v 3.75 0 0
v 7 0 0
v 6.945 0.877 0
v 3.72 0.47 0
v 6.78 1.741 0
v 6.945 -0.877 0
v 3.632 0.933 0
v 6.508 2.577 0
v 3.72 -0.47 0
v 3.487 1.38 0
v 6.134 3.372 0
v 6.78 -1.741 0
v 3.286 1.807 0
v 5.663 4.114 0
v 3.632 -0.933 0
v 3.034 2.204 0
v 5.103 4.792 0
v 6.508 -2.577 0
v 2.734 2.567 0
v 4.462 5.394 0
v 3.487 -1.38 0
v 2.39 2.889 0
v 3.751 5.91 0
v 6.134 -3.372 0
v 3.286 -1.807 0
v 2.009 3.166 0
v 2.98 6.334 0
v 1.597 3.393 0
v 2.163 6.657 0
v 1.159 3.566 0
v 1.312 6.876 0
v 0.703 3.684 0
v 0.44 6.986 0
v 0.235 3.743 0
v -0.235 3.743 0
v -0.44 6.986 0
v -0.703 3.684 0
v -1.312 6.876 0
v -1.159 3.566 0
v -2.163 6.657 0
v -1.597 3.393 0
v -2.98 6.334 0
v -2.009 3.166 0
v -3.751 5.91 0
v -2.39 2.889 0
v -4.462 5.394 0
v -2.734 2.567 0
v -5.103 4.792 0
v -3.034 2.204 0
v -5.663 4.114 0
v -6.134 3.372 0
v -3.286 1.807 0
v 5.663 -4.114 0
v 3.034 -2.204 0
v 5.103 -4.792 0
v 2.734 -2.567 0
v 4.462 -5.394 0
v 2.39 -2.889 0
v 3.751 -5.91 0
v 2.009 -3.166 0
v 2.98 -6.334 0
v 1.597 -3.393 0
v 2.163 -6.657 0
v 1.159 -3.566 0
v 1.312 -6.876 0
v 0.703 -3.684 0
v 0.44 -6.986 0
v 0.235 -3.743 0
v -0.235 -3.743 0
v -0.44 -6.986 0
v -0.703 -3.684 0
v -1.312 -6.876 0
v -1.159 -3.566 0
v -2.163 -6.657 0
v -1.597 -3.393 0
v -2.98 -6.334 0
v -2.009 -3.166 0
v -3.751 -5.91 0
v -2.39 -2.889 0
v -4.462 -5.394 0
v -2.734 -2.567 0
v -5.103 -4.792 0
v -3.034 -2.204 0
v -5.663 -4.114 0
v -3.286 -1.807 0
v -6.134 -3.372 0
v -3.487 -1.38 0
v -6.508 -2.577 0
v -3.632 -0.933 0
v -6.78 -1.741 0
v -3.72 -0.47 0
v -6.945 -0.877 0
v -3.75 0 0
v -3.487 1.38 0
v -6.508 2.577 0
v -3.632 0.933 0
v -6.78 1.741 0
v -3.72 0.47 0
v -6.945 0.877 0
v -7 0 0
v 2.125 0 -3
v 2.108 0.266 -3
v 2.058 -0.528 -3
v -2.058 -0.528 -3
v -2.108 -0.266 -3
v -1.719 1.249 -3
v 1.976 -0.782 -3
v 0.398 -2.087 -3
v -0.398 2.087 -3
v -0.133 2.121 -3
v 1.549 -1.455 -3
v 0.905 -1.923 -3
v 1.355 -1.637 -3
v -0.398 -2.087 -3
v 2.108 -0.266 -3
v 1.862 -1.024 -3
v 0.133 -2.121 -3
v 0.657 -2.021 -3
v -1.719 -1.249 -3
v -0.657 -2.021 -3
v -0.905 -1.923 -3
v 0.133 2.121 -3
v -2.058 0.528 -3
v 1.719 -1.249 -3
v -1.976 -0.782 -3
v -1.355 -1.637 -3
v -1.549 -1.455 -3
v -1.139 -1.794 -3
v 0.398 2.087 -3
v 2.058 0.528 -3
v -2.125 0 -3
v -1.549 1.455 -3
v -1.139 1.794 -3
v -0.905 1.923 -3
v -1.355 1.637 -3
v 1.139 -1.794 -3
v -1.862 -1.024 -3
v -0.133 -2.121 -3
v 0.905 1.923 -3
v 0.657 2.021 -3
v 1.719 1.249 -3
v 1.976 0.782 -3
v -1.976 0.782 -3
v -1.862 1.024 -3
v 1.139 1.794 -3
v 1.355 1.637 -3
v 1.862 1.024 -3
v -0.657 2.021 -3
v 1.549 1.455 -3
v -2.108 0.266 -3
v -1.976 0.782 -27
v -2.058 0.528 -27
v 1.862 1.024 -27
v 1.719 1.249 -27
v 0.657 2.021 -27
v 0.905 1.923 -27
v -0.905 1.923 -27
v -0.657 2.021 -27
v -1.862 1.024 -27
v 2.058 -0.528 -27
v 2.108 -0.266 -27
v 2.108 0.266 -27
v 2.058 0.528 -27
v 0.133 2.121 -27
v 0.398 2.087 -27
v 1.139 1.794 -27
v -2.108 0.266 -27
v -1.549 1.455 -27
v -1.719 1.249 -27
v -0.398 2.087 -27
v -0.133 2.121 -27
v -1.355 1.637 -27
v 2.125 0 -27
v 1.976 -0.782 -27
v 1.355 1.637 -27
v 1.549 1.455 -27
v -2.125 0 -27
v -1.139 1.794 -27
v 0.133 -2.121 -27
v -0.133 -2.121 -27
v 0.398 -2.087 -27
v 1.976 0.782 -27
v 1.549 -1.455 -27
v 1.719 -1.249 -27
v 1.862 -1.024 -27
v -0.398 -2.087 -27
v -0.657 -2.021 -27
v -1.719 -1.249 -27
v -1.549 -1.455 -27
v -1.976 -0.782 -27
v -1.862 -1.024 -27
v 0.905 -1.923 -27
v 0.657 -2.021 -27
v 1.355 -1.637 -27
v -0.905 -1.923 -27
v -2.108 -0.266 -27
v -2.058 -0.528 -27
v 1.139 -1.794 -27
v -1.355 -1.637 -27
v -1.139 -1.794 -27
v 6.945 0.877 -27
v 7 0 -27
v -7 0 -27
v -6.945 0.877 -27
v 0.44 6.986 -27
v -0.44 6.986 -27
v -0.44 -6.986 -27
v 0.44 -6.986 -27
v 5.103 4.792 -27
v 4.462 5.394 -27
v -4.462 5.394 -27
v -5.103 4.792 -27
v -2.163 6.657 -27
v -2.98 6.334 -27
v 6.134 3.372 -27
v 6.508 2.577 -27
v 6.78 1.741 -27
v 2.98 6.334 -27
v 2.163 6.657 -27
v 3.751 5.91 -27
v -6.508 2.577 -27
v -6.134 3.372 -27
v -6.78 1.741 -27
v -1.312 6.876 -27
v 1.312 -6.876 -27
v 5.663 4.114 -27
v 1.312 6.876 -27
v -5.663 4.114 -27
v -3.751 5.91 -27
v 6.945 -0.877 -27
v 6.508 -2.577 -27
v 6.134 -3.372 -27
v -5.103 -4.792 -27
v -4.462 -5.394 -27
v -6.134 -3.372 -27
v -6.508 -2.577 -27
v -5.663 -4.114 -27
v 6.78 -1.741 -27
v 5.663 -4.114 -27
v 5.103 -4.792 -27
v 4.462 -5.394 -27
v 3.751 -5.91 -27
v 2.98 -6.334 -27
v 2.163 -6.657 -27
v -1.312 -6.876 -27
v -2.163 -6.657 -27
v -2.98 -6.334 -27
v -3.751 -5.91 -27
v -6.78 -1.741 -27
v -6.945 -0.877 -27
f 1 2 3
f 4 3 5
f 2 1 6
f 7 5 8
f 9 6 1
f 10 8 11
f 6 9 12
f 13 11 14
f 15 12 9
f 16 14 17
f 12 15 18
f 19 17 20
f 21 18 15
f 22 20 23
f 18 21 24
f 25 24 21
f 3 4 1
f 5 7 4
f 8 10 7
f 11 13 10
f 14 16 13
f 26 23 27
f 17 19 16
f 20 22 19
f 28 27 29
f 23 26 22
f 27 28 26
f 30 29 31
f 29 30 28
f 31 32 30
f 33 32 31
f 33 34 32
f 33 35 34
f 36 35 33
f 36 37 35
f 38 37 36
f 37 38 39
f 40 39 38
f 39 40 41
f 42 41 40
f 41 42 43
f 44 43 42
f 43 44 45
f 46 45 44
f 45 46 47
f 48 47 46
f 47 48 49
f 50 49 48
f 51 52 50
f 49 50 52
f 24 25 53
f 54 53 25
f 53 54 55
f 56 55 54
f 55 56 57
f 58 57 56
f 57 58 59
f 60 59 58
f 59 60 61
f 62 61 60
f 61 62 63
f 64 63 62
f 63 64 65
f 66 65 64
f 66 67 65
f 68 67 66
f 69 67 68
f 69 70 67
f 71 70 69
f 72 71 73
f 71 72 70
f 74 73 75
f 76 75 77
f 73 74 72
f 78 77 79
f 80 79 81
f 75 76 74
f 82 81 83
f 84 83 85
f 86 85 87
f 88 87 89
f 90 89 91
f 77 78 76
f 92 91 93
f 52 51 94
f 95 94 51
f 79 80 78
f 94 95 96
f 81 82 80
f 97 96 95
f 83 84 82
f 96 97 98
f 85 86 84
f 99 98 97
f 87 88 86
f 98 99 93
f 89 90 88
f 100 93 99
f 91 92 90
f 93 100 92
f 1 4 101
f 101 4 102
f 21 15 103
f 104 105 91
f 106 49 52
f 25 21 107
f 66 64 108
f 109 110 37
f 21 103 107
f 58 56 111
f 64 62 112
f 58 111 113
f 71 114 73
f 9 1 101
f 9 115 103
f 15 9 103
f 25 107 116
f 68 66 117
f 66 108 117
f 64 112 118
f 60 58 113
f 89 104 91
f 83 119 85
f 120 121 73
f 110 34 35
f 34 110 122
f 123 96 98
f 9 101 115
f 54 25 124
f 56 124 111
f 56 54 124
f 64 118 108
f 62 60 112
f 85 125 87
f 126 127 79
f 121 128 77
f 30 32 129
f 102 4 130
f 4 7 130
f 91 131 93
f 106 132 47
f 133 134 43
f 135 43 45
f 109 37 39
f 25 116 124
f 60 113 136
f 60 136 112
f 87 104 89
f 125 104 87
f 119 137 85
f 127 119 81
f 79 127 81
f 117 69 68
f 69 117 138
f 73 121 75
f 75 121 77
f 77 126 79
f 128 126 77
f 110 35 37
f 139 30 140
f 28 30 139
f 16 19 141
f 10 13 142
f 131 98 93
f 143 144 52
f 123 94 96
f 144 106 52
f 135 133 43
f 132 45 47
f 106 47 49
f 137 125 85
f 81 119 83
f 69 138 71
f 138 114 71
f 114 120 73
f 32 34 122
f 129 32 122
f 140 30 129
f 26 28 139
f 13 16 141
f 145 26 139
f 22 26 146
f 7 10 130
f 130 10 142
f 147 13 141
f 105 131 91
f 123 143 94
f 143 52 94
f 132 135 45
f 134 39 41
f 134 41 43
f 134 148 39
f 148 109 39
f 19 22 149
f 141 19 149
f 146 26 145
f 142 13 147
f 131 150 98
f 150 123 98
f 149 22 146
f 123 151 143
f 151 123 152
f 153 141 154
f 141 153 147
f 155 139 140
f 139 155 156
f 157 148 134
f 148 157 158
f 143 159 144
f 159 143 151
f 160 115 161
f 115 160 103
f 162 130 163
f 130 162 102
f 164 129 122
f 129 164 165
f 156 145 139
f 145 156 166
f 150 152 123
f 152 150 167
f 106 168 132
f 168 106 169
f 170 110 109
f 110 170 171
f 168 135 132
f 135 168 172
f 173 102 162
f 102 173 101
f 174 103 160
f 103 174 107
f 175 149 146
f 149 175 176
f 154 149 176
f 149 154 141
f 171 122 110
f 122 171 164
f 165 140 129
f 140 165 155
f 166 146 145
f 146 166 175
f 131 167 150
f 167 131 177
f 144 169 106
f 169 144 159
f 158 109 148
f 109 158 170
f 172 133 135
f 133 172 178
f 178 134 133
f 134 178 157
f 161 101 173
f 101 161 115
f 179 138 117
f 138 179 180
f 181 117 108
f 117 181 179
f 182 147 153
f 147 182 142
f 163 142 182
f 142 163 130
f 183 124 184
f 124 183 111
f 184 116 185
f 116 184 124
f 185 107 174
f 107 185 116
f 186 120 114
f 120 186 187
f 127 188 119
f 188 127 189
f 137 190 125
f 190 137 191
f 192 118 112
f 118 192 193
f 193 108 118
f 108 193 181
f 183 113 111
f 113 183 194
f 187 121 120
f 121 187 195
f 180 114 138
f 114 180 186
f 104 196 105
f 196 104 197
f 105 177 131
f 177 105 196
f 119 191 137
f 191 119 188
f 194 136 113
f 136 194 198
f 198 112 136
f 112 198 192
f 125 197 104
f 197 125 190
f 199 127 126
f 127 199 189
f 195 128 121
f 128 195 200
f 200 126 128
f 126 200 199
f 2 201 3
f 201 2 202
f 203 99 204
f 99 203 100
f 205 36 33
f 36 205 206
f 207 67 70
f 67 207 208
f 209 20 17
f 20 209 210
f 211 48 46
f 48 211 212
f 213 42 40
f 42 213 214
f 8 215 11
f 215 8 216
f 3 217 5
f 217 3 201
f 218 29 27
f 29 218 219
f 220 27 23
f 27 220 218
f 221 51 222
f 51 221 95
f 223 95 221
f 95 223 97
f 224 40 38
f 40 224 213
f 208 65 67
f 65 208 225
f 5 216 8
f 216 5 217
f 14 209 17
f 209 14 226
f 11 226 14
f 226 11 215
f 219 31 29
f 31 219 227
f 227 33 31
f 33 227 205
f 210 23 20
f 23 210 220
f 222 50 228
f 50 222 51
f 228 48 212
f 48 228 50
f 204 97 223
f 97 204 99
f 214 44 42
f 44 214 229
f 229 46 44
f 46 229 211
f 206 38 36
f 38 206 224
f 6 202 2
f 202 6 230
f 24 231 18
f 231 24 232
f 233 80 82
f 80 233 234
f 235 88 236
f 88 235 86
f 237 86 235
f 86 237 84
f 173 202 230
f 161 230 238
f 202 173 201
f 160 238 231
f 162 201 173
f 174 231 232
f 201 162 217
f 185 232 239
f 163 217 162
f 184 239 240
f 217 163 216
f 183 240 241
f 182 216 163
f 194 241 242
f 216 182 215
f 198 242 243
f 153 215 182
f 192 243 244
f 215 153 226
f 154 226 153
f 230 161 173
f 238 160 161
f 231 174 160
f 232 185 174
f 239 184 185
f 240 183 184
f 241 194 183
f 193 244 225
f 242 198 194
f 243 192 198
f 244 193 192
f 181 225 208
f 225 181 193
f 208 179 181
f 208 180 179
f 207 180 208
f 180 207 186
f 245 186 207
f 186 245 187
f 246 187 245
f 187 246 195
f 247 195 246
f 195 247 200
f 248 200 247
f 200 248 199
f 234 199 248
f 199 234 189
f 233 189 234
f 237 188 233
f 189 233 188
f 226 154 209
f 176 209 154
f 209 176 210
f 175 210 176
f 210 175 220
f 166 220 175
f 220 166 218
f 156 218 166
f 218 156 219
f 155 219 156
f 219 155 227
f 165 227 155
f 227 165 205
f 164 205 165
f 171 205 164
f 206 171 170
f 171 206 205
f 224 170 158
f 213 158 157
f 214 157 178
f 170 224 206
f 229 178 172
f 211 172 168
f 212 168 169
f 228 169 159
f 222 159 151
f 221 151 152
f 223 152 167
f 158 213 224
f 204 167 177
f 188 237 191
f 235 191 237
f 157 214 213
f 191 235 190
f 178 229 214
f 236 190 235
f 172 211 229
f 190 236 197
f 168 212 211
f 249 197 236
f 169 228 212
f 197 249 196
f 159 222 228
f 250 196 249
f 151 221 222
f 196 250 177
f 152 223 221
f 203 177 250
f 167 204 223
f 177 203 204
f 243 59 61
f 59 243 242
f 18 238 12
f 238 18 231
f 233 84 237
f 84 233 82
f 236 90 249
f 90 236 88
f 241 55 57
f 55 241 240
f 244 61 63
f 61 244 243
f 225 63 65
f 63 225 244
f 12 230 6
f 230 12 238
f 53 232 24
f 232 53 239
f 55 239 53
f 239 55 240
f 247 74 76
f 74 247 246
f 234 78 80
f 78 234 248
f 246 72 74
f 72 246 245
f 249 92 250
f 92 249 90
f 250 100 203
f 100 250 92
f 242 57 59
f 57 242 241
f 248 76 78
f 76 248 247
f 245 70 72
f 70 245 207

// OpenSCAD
$fn = 50;


difference() {
	union() {
		translate(v = [0, 0, -27.0000000000]) {
			cylinder(h = 27, r = 7.0000000000);
		}
	}
	union() {
		translate(v = [0, 0, 0]) {
			rotate(a = [0, 0, 0]) {
				difference() {
					union() {
						translate(v = [0, 0, -30.0000000000]) {
							cylinder(h = 30, r = 2.0000000000);
						}
						translate(v = [0, 0, -3]) {
							cylinder(h = 3, r1 = 2.1250000000, r2 = 3.7500000000);
						}
						translate(v = [0, 0, -30.0000000000]) {
							cylinder(h = 30, r = 2.1250000000);
						}
						translate(v = [0, 0, -30.0000000000]) {
							cylinder(h = 30, r = 2.0000000000);
						}
					}
					union();
				}
			}
		}
	}
}
